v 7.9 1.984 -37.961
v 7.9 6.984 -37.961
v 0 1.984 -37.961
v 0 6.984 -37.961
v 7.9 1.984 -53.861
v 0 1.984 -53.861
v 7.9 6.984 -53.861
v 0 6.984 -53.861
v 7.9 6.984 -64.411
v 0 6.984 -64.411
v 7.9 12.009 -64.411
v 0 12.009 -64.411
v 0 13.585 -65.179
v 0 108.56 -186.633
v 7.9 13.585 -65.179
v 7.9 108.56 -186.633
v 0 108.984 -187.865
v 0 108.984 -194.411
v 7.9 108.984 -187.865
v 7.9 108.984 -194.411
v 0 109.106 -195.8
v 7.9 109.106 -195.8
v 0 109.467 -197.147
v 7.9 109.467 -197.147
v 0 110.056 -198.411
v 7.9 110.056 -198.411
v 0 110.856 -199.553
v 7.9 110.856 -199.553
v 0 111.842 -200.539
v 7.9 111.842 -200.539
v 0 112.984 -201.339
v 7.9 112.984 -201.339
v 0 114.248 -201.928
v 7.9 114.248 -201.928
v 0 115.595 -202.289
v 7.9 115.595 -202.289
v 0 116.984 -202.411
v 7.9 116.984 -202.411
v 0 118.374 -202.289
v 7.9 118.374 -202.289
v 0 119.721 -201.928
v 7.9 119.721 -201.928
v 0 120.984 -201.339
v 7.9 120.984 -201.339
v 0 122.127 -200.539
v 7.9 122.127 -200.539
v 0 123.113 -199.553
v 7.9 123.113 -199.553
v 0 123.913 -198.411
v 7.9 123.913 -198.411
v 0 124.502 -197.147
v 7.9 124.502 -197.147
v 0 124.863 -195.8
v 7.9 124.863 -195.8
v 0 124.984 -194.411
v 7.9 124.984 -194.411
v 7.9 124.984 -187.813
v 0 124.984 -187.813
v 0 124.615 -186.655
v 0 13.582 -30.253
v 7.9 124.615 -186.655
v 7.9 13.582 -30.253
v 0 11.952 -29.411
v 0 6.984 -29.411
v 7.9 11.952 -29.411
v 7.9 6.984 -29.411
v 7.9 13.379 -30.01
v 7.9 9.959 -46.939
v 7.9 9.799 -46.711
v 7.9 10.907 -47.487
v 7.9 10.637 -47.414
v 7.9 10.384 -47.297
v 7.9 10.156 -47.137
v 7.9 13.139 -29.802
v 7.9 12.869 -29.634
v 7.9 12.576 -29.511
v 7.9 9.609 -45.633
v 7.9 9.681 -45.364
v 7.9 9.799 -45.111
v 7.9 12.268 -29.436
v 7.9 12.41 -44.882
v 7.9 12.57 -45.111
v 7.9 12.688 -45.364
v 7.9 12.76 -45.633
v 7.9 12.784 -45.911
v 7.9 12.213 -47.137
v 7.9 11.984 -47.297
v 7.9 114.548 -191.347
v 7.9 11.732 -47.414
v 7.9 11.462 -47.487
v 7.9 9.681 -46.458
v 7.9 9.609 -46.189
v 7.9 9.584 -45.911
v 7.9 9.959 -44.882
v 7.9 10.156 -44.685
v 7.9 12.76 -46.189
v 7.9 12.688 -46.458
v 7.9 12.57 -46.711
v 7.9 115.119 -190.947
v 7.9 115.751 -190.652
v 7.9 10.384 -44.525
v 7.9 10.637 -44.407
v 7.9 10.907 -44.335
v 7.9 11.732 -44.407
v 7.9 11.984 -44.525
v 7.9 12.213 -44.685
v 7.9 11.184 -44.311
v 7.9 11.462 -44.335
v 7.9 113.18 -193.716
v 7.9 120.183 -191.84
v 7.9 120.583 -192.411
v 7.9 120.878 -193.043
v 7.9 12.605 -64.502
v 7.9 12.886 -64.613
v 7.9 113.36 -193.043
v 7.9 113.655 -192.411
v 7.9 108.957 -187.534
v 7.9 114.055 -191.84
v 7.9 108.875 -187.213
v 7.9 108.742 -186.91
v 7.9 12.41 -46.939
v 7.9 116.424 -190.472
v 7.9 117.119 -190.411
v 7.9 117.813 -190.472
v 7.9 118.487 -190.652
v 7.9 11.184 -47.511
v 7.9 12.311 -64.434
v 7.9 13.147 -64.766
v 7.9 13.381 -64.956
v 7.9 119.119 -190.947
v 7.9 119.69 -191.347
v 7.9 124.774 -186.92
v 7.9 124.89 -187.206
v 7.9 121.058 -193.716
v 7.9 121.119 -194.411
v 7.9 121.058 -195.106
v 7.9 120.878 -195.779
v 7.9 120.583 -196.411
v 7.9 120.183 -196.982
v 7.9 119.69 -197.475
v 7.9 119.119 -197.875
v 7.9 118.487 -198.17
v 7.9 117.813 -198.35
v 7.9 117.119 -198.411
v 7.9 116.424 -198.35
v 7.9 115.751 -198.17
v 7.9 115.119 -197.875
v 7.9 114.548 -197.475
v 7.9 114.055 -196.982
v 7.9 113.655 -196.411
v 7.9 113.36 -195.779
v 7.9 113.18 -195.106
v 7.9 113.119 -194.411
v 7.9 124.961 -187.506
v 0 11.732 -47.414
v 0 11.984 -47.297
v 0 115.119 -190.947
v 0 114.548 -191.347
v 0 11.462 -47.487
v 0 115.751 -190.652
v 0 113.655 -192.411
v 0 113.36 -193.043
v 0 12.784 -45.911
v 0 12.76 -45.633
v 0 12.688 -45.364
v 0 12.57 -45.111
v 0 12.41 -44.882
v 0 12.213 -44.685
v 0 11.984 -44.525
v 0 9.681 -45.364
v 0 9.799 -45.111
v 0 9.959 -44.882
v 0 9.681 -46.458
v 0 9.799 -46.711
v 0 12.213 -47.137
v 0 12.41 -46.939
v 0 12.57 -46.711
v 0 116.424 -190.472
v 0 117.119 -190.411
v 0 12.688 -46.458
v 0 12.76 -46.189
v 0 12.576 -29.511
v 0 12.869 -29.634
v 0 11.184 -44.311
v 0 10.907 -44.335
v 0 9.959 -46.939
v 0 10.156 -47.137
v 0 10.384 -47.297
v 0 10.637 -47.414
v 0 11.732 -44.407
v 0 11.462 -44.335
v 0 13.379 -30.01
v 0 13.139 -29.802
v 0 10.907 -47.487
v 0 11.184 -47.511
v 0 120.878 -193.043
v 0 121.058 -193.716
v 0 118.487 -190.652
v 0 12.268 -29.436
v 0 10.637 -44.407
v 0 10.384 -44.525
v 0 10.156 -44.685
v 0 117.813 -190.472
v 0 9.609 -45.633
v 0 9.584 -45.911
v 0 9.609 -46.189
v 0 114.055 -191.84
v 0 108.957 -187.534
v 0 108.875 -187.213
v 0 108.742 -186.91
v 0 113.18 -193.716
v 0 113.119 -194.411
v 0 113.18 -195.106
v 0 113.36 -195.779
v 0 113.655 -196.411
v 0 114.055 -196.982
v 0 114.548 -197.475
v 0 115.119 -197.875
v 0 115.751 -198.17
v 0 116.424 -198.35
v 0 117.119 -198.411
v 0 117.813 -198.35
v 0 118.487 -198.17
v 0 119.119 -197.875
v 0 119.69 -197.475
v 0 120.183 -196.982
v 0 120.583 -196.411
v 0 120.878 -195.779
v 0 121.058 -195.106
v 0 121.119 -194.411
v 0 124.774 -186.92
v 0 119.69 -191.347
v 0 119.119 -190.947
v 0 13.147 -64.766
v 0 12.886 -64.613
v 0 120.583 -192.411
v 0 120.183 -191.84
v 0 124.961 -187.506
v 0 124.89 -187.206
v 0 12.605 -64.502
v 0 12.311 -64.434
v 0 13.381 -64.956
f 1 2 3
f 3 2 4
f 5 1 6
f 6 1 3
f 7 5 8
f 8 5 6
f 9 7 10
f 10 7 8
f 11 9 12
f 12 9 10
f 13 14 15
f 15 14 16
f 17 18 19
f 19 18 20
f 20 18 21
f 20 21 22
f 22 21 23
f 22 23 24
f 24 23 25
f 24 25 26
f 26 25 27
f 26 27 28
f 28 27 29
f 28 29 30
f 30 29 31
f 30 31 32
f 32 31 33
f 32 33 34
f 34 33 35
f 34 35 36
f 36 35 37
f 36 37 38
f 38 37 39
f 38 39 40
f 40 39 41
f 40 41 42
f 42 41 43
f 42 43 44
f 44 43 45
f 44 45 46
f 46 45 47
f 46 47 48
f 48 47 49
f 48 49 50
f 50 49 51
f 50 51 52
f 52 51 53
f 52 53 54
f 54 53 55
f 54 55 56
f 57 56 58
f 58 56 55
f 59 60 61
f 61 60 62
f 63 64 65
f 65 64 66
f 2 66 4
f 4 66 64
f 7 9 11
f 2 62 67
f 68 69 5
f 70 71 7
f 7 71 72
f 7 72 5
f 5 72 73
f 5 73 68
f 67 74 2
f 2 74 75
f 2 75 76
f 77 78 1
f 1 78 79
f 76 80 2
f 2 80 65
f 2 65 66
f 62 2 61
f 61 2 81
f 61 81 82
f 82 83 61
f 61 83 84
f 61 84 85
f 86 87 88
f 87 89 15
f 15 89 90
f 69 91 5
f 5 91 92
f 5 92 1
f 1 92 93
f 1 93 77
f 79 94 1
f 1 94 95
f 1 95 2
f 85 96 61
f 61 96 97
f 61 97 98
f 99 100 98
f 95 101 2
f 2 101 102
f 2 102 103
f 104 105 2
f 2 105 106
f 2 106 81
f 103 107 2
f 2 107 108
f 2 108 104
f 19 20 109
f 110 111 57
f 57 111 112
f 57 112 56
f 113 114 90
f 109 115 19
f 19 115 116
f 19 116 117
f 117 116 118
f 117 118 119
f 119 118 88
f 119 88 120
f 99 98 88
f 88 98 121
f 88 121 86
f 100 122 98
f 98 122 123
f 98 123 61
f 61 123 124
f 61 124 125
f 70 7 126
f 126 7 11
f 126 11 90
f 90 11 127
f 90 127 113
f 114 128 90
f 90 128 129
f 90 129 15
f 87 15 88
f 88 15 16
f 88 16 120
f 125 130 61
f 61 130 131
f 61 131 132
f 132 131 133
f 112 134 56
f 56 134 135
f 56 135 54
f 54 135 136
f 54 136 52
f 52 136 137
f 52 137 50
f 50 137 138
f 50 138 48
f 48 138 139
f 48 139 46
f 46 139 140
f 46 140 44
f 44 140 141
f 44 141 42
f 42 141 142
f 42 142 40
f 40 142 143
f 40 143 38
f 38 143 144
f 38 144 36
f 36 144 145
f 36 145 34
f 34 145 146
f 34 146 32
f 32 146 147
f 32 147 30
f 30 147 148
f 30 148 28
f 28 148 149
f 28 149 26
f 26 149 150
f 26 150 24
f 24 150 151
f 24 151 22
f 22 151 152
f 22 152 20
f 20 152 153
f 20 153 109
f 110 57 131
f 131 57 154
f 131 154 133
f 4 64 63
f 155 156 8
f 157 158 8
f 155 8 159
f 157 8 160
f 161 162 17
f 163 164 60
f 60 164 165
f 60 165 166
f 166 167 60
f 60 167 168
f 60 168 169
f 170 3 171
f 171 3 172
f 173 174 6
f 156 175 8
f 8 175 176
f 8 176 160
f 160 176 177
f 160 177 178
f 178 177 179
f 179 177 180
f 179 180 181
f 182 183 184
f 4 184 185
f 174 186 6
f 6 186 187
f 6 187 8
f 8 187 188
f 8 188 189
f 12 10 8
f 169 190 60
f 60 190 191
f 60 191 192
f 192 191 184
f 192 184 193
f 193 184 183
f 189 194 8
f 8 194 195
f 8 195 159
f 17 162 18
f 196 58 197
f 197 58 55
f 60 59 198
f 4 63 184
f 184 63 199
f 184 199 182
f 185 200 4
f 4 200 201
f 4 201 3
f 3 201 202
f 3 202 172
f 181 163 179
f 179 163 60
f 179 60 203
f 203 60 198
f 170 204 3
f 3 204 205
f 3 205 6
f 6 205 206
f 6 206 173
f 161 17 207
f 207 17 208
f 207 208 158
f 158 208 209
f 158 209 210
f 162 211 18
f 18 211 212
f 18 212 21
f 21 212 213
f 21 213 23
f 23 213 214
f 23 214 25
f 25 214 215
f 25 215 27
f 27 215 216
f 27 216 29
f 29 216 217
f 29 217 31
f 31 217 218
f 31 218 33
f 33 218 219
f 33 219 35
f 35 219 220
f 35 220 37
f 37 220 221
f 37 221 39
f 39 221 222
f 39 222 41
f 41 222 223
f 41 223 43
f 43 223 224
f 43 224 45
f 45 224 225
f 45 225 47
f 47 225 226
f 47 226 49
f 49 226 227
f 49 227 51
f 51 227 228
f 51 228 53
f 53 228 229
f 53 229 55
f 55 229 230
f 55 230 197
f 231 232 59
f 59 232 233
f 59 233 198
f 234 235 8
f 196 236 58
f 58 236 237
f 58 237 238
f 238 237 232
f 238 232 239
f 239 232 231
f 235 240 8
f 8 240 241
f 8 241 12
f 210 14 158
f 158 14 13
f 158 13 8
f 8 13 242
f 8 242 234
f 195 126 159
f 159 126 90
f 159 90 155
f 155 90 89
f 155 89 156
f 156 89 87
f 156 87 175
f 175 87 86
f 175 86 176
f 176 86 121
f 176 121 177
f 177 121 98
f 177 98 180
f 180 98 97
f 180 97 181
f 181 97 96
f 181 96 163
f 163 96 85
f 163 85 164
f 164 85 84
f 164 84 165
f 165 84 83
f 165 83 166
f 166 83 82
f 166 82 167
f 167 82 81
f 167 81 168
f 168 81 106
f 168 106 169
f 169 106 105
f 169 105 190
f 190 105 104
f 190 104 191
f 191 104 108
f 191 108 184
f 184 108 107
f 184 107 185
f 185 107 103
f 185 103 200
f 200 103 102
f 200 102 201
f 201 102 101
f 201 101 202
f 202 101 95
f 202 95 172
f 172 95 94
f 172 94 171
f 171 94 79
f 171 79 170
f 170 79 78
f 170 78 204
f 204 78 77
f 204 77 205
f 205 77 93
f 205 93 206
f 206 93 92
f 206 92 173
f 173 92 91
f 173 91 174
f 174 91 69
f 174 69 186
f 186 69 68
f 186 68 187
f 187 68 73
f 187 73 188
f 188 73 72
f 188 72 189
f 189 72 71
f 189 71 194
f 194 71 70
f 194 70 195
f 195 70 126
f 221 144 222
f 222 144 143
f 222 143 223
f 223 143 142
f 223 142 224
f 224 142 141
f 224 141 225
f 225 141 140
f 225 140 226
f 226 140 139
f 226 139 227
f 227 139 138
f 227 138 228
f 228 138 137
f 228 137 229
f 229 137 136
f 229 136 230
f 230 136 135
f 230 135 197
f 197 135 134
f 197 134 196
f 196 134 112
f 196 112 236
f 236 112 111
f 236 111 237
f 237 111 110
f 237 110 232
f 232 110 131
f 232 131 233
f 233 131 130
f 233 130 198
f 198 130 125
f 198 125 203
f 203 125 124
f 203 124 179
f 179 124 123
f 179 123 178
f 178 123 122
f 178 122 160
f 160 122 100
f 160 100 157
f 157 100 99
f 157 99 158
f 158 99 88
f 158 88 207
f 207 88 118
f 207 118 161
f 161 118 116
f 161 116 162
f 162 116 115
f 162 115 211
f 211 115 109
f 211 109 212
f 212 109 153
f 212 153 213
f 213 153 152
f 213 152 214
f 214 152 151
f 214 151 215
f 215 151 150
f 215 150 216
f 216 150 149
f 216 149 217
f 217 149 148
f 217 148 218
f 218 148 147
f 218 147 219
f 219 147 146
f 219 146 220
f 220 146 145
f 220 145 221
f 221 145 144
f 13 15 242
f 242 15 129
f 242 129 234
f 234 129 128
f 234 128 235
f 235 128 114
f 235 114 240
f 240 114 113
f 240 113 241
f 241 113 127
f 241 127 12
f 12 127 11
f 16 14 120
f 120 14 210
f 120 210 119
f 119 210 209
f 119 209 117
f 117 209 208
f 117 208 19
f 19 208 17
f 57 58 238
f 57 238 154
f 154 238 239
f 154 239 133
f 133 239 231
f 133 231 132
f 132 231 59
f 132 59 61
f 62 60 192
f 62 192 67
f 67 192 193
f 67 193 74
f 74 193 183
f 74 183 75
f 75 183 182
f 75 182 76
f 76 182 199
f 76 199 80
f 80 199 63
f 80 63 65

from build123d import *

# Parameters (mm, degrees)
BOSS_EXTRU_1_DEPTH      = 7.9
ESQUISSE2_R             = 1.6
ESQUISSE2_R_2           = 4
ENL_V_MAT_EXTRU_1_DEPTH = 8.9
CONG_1_R                = 2


with BuildPart() as part:
    # Esquisse1 → Boss.-Extru.1 (new body)
    with BuildSketch(Plane(origin=(0, 0, 0), x_dir=(0, 0, -1), z_dir=(1, 0, 0))):
        with BuildLine():
            Line((37.960924758, 1.984416578), (37.960924758, 6.984416578))
            Line((37.960924758, 6.984416578), (29.410924758, 6.984416578))
            Line((29.410924758, 6.984416578), (29.410924758, 12.984416578))
            Line((29.410924758, 12.984416578), (187.175507503, 124.984416578))
            Line((187.175507503, 124.984416578), (194.410924758, 124.984416578))
            ThreePointArc((194.410924758, 124.984416578), (202.410924758, 116.984416578), (194.410924758, 108.984416578))
            Line((194.410924758, 108.984416578), (187.175507503, 108.984416578))
            Line((187.175507503, 108.984416578), (64.410924758, 12.984416578))
            Line((64.410924758, 12.984416578), (64.410924758, 6.984416578))
            Line((64.410924758, 6.984416578), (53.860924758, 6.984416578))
            Line((53.860924758, 6.984416578), (53.860924758, 1.984416578))
            Line((53.860924758, 1.984416578), (37.960924758, 1.984416578))
        make_face()
    extrude(amount=BOSS_EXTRU_1_DEPTH)

    # Esquisse2 → Enlèv. mat.-Extru.1 (cut, through all)
    with BuildSketch(Plane(origin=(7.9, 0, 0), x_dir=(0, 0, -1), z_dir=(1, 0, 0))):
        with Locations((45.910924758, 11.184416578)):
            Circle(ESQUISSE2_R)
        with Locations((194.410924758, 117.118890011)):
            Circle(ESQUISSE2_R_2)
    extrude(amount=-ENL_V_MAT_EXTRU_1_DEPTH, mode=Mode.SUBTRACT)

    # Congé1
    cong_1_edges = [part.edges().sort_by_distance(p)[0] for p in [
        (3.95, 12.984416578, -64.410924758),
        (3.95, 108.984416578, -187.175507503),
        (3.95, 124.984416578, -187.175507503),
        (3.95, 12.984416578, -29.410924758),
    ]]
    fillet(cong_1_edges, radius=CONG_1_R)


solid = part.part
